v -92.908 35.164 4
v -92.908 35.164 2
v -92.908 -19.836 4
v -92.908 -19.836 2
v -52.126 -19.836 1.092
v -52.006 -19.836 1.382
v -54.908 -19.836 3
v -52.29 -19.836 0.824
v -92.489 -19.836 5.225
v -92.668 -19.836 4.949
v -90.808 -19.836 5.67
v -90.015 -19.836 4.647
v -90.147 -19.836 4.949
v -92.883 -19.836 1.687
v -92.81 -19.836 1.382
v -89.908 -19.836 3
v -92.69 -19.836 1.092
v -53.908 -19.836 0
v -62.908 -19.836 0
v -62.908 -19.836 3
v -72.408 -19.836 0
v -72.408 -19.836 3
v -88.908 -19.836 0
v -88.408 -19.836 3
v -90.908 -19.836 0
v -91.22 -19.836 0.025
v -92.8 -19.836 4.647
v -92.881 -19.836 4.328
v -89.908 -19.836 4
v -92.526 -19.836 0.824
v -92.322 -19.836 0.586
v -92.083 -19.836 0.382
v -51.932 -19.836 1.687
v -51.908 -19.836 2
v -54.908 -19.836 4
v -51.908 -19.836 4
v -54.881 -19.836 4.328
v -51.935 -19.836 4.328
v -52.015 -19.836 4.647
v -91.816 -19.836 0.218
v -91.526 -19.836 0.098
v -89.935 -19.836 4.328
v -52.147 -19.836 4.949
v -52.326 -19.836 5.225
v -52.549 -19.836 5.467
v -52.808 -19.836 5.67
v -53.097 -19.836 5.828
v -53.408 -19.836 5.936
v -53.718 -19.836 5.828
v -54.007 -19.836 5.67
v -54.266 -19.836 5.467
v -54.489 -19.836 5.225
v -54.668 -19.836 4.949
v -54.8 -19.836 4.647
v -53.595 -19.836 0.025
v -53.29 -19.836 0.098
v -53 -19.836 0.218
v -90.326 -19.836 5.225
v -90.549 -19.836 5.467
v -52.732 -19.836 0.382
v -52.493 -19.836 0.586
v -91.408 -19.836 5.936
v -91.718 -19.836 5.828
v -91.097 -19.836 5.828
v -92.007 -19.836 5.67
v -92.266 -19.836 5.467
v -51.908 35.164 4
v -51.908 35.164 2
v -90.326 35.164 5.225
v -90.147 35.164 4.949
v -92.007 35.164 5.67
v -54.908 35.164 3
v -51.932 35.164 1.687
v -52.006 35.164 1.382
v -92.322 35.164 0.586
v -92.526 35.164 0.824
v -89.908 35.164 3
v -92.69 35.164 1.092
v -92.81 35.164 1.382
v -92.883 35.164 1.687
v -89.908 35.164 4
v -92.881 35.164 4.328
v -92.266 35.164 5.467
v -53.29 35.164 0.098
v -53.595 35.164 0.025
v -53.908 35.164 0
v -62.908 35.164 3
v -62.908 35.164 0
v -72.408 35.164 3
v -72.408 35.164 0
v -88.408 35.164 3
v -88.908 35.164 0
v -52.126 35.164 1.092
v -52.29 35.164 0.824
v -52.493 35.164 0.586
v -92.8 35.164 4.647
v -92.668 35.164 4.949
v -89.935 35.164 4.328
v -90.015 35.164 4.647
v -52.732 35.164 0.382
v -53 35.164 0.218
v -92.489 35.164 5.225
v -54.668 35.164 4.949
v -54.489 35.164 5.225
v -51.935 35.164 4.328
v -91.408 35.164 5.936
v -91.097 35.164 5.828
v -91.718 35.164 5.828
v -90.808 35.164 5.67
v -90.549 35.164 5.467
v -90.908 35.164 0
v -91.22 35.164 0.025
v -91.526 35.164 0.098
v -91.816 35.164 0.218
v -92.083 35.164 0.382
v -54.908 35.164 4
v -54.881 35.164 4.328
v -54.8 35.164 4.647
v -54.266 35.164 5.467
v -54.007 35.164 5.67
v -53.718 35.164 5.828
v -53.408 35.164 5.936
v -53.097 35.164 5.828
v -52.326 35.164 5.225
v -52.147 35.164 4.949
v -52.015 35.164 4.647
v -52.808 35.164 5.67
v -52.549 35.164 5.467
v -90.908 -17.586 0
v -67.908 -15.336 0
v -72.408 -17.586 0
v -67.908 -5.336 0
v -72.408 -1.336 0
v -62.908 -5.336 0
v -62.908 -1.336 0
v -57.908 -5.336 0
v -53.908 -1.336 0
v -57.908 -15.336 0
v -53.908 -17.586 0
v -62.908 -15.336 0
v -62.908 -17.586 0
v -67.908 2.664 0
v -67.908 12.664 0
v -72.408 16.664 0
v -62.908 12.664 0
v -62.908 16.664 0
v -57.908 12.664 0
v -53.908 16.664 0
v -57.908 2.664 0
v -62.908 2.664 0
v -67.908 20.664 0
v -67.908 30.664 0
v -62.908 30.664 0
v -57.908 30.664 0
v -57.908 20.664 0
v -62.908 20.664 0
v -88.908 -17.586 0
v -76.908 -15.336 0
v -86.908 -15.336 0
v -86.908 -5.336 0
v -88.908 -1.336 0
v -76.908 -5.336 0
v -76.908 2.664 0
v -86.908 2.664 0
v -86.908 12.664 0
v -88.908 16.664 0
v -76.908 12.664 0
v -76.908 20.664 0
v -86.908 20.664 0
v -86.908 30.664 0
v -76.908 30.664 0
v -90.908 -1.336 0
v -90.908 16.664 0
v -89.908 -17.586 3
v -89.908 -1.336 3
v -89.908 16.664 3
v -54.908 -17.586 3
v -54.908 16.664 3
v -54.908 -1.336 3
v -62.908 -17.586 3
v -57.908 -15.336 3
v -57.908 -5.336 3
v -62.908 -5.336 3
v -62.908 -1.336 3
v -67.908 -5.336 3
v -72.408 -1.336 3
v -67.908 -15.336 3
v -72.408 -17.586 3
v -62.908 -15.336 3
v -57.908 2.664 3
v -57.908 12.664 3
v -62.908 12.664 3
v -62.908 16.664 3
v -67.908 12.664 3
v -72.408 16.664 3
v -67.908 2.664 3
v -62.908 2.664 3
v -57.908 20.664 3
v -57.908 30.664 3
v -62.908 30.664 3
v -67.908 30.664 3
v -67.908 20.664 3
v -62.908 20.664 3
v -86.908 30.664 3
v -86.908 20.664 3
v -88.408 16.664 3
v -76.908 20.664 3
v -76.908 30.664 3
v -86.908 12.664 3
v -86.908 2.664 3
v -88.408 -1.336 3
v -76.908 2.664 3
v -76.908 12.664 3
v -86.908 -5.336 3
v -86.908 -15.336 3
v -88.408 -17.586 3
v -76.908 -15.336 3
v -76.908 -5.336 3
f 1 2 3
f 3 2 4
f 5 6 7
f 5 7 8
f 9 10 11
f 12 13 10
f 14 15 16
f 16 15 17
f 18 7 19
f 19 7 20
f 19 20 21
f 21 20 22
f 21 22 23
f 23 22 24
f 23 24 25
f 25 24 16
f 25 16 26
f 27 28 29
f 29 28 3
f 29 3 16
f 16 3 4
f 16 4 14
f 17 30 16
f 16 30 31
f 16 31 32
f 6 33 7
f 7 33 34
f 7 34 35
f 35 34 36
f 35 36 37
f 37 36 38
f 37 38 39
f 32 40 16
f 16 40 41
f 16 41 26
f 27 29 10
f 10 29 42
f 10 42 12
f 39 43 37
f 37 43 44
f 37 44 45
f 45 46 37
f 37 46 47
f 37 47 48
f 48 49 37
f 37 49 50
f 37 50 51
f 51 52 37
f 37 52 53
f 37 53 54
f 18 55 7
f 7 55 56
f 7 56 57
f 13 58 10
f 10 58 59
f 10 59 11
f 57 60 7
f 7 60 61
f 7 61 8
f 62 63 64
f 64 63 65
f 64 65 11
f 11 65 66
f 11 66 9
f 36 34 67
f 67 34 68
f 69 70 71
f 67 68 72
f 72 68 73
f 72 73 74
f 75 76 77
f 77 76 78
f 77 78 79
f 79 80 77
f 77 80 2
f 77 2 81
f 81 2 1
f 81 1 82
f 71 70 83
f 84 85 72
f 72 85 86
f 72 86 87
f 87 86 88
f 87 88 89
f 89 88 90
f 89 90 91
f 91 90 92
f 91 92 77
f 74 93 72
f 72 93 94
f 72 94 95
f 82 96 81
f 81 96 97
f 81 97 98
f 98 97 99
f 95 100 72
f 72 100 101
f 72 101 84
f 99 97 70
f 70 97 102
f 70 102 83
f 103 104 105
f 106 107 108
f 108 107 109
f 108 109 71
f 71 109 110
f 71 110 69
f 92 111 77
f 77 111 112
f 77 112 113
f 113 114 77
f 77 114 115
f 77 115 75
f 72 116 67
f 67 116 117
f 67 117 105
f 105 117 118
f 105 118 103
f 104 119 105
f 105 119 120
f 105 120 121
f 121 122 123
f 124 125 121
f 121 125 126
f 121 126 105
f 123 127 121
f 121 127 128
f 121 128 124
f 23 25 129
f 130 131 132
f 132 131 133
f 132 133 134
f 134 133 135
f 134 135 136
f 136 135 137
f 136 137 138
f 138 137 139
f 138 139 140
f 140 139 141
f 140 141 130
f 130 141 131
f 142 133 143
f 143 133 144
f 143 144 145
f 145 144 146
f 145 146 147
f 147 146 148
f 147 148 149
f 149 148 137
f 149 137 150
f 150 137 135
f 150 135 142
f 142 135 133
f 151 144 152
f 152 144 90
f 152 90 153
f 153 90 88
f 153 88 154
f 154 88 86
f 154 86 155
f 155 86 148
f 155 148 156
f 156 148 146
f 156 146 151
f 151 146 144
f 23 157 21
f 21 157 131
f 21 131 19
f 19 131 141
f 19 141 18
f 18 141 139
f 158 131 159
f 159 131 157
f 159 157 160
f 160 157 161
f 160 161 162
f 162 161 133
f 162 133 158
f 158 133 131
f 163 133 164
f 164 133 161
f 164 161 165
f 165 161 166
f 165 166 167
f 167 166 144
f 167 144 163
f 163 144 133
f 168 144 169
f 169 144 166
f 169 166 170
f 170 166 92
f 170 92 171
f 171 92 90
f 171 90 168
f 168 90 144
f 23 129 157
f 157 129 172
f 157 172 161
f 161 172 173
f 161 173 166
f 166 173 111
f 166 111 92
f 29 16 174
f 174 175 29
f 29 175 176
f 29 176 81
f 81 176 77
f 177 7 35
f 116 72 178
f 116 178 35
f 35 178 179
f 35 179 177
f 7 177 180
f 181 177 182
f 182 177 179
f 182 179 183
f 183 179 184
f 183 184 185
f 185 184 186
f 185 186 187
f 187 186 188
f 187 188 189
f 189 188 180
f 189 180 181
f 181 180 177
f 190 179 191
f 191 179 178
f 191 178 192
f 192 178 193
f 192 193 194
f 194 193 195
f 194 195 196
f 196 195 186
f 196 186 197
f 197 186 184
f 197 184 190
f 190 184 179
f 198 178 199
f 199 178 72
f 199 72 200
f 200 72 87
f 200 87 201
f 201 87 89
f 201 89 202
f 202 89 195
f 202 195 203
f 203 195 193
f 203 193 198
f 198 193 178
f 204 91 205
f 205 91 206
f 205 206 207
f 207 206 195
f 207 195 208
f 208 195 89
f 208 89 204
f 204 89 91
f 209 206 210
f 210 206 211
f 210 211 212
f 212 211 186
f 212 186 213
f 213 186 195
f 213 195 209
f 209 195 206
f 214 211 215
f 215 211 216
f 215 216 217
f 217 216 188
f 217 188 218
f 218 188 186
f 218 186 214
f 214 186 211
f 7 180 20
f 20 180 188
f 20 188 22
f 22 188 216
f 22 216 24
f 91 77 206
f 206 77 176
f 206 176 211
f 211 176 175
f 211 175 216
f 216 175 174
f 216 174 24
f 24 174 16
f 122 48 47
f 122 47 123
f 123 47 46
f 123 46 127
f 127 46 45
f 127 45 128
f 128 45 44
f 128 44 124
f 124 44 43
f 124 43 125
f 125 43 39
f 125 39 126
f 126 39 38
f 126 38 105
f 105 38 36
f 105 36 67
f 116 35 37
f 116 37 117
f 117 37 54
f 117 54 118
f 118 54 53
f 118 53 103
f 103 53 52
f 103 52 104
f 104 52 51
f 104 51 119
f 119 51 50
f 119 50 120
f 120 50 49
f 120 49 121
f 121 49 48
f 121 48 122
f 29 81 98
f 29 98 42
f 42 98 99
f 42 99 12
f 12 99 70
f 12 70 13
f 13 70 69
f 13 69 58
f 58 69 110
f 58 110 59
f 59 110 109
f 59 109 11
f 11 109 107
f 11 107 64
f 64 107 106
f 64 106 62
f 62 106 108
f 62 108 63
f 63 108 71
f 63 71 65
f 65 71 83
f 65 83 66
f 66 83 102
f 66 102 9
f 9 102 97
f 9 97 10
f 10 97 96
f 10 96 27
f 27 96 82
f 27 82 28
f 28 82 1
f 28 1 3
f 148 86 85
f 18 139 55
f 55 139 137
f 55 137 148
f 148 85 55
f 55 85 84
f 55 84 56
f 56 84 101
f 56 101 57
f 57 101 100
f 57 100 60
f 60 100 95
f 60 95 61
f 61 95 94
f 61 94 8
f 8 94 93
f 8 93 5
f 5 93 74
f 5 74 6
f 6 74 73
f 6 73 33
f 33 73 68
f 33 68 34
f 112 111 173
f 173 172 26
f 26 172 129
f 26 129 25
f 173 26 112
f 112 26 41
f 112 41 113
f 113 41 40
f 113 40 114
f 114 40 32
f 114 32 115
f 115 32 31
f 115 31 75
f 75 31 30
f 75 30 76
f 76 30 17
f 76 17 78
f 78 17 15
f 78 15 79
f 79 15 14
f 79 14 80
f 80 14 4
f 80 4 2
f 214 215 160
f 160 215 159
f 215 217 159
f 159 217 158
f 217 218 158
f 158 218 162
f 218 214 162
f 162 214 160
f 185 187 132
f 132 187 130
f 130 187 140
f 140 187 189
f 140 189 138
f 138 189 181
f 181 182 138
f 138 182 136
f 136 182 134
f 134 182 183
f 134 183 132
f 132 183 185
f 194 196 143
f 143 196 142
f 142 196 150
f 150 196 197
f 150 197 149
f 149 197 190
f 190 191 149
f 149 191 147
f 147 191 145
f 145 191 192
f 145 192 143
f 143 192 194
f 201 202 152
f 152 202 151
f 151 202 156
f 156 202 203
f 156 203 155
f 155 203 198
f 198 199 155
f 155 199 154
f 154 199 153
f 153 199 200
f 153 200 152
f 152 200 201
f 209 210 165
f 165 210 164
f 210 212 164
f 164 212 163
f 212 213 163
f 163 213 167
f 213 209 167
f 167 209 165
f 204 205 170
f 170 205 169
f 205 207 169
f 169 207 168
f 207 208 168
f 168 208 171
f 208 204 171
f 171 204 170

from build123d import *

# Parameters (mm, degrees)
CROQUIS1_W              = 41
CROQUIS1_H              = 55
SALIENTE_EXTRUIR1_DEPTH = 6
CROQUIS2_W              = 35
CROQUIS2_H              = 55
CORTAR_EXTRUIR1_DEPTH   = 3
REDONDEO1_R             = 2
CROQUIS3_W              = 10
CROQUIS3_H              = 10
CORTAR_EXTRUIR2_DEPTH   = 3


with BuildPart() as part:
    # Croquis1 → Saliente-Extruir1 (new body)
    with BuildSketch(Plane.XY):
        with Locations((-72.407619756, 7.664233577)):
            Rectangle(CROQUIS1_W, CROQUIS1_H)
    extrude(amount=SALIENTE_EXTRUIR1_DEPTH)

    # Croquis2 → Cortar-Extruir1 (cut)
    with BuildSketch(Plane.XY.offset(6)):
        with Locations((-72.407619756, 7.664233577)):
            Rectangle(CROQUIS2_W, CROQUIS2_H)
    extrude(amount=-CORTAR_EXTRUIR1_DEPTH, mode=Mode.SUBTRACT)

    # Redondeo1
    # the kernel refuses this fillet: 2 mm, written as the material it takes off along each edge
    with BuildSketch(Plane(origin=(-54.907619756, 40.164233577, 6), x_dir=(1, 0, 0), z_dir=(0, -1, 0)), Plane(origin=(-51.907619756, 40.164233577, 6), x_dir=(0, 0, -1), z_dir=(0, -1, 0)), Plane(origin=(-51.907619756, 40.164233577, 0), x_dir=(-1, 0, 0), z_dir=(0, -1, 0)), Plane(origin=(-92.907619756, -24.835766423, 0), x_dir=(1, 0, 0), z_dir=(0, 1, 0))) as redondeo1_piece_1:
        with BuildLine():
            CenterArc((REDONDEO1_R, -REDONDEO1_R), REDONDEO1_R, 90, 90)
            Line((0, -REDONDEO1_R), (0, 0))
            Line((0, 0), (REDONDEO1_R, 0))
        make_face()
    extrude(amount=65, mode=Mode.SUBTRACT)
    with BuildSketch(Plane(origin=(-92.907619756, -24.835766423, 6), x_dir=(1, 0, 0), z_dir=(0, 1, 0)), Plane(origin=(-89.907619756, -24.835766423, 6), x_dir=(0, 0, -1), z_dir=(0, 1, 0))) as redondeo1_piece_2:
        with BuildLine():
            CenterArc((REDONDEO1_R, REDONDEO1_R), REDONDEO1_R, 180, 90)
            Line((0, REDONDEO1_R), (0, 0))
            Line((0, 0), (REDONDEO1_R, 0))
        make_face()
    extrude(amount=65, mode=Mode.SUBTRACT)

    # Croquis3 → Cortar-Extruir2 (cut)
    with BuildSketch(Plane(origin=(0, 0, 0), x_dir=(-1, 0, 0), z_dir=(0, 0, -1))):
        with Locations((81.907619756, -10.335766423)):
            Rectangle(CROQUIS3_W, CROQUIS3_H)
        with Locations((62.907619756, -10.335766423)):
            Rectangle(CROQUIS3_W, CROQUIS3_H)
        with Locations((62.907619756, 7.664233577)):
            Rectangle(CROQUIS3_W, CROQUIS3_H)
        with Locations((62.907619756, 25.664233577)):
            Rectangle(CROQUIS3_W, CROQUIS3_H)
        with Locations((81.907619756, 7.664233577)):
            Rectangle(CROQUIS3_W, CROQUIS3_H)
        with Locations((81.907619756, 25.664233577)):
            Rectangle(CROQUIS3_W, CROQUIS3_H)
    extrude(amount=-CORTAR_EXTRUIR2_DEPTH, mode=Mode.SUBTRACT)


solid = part.part
